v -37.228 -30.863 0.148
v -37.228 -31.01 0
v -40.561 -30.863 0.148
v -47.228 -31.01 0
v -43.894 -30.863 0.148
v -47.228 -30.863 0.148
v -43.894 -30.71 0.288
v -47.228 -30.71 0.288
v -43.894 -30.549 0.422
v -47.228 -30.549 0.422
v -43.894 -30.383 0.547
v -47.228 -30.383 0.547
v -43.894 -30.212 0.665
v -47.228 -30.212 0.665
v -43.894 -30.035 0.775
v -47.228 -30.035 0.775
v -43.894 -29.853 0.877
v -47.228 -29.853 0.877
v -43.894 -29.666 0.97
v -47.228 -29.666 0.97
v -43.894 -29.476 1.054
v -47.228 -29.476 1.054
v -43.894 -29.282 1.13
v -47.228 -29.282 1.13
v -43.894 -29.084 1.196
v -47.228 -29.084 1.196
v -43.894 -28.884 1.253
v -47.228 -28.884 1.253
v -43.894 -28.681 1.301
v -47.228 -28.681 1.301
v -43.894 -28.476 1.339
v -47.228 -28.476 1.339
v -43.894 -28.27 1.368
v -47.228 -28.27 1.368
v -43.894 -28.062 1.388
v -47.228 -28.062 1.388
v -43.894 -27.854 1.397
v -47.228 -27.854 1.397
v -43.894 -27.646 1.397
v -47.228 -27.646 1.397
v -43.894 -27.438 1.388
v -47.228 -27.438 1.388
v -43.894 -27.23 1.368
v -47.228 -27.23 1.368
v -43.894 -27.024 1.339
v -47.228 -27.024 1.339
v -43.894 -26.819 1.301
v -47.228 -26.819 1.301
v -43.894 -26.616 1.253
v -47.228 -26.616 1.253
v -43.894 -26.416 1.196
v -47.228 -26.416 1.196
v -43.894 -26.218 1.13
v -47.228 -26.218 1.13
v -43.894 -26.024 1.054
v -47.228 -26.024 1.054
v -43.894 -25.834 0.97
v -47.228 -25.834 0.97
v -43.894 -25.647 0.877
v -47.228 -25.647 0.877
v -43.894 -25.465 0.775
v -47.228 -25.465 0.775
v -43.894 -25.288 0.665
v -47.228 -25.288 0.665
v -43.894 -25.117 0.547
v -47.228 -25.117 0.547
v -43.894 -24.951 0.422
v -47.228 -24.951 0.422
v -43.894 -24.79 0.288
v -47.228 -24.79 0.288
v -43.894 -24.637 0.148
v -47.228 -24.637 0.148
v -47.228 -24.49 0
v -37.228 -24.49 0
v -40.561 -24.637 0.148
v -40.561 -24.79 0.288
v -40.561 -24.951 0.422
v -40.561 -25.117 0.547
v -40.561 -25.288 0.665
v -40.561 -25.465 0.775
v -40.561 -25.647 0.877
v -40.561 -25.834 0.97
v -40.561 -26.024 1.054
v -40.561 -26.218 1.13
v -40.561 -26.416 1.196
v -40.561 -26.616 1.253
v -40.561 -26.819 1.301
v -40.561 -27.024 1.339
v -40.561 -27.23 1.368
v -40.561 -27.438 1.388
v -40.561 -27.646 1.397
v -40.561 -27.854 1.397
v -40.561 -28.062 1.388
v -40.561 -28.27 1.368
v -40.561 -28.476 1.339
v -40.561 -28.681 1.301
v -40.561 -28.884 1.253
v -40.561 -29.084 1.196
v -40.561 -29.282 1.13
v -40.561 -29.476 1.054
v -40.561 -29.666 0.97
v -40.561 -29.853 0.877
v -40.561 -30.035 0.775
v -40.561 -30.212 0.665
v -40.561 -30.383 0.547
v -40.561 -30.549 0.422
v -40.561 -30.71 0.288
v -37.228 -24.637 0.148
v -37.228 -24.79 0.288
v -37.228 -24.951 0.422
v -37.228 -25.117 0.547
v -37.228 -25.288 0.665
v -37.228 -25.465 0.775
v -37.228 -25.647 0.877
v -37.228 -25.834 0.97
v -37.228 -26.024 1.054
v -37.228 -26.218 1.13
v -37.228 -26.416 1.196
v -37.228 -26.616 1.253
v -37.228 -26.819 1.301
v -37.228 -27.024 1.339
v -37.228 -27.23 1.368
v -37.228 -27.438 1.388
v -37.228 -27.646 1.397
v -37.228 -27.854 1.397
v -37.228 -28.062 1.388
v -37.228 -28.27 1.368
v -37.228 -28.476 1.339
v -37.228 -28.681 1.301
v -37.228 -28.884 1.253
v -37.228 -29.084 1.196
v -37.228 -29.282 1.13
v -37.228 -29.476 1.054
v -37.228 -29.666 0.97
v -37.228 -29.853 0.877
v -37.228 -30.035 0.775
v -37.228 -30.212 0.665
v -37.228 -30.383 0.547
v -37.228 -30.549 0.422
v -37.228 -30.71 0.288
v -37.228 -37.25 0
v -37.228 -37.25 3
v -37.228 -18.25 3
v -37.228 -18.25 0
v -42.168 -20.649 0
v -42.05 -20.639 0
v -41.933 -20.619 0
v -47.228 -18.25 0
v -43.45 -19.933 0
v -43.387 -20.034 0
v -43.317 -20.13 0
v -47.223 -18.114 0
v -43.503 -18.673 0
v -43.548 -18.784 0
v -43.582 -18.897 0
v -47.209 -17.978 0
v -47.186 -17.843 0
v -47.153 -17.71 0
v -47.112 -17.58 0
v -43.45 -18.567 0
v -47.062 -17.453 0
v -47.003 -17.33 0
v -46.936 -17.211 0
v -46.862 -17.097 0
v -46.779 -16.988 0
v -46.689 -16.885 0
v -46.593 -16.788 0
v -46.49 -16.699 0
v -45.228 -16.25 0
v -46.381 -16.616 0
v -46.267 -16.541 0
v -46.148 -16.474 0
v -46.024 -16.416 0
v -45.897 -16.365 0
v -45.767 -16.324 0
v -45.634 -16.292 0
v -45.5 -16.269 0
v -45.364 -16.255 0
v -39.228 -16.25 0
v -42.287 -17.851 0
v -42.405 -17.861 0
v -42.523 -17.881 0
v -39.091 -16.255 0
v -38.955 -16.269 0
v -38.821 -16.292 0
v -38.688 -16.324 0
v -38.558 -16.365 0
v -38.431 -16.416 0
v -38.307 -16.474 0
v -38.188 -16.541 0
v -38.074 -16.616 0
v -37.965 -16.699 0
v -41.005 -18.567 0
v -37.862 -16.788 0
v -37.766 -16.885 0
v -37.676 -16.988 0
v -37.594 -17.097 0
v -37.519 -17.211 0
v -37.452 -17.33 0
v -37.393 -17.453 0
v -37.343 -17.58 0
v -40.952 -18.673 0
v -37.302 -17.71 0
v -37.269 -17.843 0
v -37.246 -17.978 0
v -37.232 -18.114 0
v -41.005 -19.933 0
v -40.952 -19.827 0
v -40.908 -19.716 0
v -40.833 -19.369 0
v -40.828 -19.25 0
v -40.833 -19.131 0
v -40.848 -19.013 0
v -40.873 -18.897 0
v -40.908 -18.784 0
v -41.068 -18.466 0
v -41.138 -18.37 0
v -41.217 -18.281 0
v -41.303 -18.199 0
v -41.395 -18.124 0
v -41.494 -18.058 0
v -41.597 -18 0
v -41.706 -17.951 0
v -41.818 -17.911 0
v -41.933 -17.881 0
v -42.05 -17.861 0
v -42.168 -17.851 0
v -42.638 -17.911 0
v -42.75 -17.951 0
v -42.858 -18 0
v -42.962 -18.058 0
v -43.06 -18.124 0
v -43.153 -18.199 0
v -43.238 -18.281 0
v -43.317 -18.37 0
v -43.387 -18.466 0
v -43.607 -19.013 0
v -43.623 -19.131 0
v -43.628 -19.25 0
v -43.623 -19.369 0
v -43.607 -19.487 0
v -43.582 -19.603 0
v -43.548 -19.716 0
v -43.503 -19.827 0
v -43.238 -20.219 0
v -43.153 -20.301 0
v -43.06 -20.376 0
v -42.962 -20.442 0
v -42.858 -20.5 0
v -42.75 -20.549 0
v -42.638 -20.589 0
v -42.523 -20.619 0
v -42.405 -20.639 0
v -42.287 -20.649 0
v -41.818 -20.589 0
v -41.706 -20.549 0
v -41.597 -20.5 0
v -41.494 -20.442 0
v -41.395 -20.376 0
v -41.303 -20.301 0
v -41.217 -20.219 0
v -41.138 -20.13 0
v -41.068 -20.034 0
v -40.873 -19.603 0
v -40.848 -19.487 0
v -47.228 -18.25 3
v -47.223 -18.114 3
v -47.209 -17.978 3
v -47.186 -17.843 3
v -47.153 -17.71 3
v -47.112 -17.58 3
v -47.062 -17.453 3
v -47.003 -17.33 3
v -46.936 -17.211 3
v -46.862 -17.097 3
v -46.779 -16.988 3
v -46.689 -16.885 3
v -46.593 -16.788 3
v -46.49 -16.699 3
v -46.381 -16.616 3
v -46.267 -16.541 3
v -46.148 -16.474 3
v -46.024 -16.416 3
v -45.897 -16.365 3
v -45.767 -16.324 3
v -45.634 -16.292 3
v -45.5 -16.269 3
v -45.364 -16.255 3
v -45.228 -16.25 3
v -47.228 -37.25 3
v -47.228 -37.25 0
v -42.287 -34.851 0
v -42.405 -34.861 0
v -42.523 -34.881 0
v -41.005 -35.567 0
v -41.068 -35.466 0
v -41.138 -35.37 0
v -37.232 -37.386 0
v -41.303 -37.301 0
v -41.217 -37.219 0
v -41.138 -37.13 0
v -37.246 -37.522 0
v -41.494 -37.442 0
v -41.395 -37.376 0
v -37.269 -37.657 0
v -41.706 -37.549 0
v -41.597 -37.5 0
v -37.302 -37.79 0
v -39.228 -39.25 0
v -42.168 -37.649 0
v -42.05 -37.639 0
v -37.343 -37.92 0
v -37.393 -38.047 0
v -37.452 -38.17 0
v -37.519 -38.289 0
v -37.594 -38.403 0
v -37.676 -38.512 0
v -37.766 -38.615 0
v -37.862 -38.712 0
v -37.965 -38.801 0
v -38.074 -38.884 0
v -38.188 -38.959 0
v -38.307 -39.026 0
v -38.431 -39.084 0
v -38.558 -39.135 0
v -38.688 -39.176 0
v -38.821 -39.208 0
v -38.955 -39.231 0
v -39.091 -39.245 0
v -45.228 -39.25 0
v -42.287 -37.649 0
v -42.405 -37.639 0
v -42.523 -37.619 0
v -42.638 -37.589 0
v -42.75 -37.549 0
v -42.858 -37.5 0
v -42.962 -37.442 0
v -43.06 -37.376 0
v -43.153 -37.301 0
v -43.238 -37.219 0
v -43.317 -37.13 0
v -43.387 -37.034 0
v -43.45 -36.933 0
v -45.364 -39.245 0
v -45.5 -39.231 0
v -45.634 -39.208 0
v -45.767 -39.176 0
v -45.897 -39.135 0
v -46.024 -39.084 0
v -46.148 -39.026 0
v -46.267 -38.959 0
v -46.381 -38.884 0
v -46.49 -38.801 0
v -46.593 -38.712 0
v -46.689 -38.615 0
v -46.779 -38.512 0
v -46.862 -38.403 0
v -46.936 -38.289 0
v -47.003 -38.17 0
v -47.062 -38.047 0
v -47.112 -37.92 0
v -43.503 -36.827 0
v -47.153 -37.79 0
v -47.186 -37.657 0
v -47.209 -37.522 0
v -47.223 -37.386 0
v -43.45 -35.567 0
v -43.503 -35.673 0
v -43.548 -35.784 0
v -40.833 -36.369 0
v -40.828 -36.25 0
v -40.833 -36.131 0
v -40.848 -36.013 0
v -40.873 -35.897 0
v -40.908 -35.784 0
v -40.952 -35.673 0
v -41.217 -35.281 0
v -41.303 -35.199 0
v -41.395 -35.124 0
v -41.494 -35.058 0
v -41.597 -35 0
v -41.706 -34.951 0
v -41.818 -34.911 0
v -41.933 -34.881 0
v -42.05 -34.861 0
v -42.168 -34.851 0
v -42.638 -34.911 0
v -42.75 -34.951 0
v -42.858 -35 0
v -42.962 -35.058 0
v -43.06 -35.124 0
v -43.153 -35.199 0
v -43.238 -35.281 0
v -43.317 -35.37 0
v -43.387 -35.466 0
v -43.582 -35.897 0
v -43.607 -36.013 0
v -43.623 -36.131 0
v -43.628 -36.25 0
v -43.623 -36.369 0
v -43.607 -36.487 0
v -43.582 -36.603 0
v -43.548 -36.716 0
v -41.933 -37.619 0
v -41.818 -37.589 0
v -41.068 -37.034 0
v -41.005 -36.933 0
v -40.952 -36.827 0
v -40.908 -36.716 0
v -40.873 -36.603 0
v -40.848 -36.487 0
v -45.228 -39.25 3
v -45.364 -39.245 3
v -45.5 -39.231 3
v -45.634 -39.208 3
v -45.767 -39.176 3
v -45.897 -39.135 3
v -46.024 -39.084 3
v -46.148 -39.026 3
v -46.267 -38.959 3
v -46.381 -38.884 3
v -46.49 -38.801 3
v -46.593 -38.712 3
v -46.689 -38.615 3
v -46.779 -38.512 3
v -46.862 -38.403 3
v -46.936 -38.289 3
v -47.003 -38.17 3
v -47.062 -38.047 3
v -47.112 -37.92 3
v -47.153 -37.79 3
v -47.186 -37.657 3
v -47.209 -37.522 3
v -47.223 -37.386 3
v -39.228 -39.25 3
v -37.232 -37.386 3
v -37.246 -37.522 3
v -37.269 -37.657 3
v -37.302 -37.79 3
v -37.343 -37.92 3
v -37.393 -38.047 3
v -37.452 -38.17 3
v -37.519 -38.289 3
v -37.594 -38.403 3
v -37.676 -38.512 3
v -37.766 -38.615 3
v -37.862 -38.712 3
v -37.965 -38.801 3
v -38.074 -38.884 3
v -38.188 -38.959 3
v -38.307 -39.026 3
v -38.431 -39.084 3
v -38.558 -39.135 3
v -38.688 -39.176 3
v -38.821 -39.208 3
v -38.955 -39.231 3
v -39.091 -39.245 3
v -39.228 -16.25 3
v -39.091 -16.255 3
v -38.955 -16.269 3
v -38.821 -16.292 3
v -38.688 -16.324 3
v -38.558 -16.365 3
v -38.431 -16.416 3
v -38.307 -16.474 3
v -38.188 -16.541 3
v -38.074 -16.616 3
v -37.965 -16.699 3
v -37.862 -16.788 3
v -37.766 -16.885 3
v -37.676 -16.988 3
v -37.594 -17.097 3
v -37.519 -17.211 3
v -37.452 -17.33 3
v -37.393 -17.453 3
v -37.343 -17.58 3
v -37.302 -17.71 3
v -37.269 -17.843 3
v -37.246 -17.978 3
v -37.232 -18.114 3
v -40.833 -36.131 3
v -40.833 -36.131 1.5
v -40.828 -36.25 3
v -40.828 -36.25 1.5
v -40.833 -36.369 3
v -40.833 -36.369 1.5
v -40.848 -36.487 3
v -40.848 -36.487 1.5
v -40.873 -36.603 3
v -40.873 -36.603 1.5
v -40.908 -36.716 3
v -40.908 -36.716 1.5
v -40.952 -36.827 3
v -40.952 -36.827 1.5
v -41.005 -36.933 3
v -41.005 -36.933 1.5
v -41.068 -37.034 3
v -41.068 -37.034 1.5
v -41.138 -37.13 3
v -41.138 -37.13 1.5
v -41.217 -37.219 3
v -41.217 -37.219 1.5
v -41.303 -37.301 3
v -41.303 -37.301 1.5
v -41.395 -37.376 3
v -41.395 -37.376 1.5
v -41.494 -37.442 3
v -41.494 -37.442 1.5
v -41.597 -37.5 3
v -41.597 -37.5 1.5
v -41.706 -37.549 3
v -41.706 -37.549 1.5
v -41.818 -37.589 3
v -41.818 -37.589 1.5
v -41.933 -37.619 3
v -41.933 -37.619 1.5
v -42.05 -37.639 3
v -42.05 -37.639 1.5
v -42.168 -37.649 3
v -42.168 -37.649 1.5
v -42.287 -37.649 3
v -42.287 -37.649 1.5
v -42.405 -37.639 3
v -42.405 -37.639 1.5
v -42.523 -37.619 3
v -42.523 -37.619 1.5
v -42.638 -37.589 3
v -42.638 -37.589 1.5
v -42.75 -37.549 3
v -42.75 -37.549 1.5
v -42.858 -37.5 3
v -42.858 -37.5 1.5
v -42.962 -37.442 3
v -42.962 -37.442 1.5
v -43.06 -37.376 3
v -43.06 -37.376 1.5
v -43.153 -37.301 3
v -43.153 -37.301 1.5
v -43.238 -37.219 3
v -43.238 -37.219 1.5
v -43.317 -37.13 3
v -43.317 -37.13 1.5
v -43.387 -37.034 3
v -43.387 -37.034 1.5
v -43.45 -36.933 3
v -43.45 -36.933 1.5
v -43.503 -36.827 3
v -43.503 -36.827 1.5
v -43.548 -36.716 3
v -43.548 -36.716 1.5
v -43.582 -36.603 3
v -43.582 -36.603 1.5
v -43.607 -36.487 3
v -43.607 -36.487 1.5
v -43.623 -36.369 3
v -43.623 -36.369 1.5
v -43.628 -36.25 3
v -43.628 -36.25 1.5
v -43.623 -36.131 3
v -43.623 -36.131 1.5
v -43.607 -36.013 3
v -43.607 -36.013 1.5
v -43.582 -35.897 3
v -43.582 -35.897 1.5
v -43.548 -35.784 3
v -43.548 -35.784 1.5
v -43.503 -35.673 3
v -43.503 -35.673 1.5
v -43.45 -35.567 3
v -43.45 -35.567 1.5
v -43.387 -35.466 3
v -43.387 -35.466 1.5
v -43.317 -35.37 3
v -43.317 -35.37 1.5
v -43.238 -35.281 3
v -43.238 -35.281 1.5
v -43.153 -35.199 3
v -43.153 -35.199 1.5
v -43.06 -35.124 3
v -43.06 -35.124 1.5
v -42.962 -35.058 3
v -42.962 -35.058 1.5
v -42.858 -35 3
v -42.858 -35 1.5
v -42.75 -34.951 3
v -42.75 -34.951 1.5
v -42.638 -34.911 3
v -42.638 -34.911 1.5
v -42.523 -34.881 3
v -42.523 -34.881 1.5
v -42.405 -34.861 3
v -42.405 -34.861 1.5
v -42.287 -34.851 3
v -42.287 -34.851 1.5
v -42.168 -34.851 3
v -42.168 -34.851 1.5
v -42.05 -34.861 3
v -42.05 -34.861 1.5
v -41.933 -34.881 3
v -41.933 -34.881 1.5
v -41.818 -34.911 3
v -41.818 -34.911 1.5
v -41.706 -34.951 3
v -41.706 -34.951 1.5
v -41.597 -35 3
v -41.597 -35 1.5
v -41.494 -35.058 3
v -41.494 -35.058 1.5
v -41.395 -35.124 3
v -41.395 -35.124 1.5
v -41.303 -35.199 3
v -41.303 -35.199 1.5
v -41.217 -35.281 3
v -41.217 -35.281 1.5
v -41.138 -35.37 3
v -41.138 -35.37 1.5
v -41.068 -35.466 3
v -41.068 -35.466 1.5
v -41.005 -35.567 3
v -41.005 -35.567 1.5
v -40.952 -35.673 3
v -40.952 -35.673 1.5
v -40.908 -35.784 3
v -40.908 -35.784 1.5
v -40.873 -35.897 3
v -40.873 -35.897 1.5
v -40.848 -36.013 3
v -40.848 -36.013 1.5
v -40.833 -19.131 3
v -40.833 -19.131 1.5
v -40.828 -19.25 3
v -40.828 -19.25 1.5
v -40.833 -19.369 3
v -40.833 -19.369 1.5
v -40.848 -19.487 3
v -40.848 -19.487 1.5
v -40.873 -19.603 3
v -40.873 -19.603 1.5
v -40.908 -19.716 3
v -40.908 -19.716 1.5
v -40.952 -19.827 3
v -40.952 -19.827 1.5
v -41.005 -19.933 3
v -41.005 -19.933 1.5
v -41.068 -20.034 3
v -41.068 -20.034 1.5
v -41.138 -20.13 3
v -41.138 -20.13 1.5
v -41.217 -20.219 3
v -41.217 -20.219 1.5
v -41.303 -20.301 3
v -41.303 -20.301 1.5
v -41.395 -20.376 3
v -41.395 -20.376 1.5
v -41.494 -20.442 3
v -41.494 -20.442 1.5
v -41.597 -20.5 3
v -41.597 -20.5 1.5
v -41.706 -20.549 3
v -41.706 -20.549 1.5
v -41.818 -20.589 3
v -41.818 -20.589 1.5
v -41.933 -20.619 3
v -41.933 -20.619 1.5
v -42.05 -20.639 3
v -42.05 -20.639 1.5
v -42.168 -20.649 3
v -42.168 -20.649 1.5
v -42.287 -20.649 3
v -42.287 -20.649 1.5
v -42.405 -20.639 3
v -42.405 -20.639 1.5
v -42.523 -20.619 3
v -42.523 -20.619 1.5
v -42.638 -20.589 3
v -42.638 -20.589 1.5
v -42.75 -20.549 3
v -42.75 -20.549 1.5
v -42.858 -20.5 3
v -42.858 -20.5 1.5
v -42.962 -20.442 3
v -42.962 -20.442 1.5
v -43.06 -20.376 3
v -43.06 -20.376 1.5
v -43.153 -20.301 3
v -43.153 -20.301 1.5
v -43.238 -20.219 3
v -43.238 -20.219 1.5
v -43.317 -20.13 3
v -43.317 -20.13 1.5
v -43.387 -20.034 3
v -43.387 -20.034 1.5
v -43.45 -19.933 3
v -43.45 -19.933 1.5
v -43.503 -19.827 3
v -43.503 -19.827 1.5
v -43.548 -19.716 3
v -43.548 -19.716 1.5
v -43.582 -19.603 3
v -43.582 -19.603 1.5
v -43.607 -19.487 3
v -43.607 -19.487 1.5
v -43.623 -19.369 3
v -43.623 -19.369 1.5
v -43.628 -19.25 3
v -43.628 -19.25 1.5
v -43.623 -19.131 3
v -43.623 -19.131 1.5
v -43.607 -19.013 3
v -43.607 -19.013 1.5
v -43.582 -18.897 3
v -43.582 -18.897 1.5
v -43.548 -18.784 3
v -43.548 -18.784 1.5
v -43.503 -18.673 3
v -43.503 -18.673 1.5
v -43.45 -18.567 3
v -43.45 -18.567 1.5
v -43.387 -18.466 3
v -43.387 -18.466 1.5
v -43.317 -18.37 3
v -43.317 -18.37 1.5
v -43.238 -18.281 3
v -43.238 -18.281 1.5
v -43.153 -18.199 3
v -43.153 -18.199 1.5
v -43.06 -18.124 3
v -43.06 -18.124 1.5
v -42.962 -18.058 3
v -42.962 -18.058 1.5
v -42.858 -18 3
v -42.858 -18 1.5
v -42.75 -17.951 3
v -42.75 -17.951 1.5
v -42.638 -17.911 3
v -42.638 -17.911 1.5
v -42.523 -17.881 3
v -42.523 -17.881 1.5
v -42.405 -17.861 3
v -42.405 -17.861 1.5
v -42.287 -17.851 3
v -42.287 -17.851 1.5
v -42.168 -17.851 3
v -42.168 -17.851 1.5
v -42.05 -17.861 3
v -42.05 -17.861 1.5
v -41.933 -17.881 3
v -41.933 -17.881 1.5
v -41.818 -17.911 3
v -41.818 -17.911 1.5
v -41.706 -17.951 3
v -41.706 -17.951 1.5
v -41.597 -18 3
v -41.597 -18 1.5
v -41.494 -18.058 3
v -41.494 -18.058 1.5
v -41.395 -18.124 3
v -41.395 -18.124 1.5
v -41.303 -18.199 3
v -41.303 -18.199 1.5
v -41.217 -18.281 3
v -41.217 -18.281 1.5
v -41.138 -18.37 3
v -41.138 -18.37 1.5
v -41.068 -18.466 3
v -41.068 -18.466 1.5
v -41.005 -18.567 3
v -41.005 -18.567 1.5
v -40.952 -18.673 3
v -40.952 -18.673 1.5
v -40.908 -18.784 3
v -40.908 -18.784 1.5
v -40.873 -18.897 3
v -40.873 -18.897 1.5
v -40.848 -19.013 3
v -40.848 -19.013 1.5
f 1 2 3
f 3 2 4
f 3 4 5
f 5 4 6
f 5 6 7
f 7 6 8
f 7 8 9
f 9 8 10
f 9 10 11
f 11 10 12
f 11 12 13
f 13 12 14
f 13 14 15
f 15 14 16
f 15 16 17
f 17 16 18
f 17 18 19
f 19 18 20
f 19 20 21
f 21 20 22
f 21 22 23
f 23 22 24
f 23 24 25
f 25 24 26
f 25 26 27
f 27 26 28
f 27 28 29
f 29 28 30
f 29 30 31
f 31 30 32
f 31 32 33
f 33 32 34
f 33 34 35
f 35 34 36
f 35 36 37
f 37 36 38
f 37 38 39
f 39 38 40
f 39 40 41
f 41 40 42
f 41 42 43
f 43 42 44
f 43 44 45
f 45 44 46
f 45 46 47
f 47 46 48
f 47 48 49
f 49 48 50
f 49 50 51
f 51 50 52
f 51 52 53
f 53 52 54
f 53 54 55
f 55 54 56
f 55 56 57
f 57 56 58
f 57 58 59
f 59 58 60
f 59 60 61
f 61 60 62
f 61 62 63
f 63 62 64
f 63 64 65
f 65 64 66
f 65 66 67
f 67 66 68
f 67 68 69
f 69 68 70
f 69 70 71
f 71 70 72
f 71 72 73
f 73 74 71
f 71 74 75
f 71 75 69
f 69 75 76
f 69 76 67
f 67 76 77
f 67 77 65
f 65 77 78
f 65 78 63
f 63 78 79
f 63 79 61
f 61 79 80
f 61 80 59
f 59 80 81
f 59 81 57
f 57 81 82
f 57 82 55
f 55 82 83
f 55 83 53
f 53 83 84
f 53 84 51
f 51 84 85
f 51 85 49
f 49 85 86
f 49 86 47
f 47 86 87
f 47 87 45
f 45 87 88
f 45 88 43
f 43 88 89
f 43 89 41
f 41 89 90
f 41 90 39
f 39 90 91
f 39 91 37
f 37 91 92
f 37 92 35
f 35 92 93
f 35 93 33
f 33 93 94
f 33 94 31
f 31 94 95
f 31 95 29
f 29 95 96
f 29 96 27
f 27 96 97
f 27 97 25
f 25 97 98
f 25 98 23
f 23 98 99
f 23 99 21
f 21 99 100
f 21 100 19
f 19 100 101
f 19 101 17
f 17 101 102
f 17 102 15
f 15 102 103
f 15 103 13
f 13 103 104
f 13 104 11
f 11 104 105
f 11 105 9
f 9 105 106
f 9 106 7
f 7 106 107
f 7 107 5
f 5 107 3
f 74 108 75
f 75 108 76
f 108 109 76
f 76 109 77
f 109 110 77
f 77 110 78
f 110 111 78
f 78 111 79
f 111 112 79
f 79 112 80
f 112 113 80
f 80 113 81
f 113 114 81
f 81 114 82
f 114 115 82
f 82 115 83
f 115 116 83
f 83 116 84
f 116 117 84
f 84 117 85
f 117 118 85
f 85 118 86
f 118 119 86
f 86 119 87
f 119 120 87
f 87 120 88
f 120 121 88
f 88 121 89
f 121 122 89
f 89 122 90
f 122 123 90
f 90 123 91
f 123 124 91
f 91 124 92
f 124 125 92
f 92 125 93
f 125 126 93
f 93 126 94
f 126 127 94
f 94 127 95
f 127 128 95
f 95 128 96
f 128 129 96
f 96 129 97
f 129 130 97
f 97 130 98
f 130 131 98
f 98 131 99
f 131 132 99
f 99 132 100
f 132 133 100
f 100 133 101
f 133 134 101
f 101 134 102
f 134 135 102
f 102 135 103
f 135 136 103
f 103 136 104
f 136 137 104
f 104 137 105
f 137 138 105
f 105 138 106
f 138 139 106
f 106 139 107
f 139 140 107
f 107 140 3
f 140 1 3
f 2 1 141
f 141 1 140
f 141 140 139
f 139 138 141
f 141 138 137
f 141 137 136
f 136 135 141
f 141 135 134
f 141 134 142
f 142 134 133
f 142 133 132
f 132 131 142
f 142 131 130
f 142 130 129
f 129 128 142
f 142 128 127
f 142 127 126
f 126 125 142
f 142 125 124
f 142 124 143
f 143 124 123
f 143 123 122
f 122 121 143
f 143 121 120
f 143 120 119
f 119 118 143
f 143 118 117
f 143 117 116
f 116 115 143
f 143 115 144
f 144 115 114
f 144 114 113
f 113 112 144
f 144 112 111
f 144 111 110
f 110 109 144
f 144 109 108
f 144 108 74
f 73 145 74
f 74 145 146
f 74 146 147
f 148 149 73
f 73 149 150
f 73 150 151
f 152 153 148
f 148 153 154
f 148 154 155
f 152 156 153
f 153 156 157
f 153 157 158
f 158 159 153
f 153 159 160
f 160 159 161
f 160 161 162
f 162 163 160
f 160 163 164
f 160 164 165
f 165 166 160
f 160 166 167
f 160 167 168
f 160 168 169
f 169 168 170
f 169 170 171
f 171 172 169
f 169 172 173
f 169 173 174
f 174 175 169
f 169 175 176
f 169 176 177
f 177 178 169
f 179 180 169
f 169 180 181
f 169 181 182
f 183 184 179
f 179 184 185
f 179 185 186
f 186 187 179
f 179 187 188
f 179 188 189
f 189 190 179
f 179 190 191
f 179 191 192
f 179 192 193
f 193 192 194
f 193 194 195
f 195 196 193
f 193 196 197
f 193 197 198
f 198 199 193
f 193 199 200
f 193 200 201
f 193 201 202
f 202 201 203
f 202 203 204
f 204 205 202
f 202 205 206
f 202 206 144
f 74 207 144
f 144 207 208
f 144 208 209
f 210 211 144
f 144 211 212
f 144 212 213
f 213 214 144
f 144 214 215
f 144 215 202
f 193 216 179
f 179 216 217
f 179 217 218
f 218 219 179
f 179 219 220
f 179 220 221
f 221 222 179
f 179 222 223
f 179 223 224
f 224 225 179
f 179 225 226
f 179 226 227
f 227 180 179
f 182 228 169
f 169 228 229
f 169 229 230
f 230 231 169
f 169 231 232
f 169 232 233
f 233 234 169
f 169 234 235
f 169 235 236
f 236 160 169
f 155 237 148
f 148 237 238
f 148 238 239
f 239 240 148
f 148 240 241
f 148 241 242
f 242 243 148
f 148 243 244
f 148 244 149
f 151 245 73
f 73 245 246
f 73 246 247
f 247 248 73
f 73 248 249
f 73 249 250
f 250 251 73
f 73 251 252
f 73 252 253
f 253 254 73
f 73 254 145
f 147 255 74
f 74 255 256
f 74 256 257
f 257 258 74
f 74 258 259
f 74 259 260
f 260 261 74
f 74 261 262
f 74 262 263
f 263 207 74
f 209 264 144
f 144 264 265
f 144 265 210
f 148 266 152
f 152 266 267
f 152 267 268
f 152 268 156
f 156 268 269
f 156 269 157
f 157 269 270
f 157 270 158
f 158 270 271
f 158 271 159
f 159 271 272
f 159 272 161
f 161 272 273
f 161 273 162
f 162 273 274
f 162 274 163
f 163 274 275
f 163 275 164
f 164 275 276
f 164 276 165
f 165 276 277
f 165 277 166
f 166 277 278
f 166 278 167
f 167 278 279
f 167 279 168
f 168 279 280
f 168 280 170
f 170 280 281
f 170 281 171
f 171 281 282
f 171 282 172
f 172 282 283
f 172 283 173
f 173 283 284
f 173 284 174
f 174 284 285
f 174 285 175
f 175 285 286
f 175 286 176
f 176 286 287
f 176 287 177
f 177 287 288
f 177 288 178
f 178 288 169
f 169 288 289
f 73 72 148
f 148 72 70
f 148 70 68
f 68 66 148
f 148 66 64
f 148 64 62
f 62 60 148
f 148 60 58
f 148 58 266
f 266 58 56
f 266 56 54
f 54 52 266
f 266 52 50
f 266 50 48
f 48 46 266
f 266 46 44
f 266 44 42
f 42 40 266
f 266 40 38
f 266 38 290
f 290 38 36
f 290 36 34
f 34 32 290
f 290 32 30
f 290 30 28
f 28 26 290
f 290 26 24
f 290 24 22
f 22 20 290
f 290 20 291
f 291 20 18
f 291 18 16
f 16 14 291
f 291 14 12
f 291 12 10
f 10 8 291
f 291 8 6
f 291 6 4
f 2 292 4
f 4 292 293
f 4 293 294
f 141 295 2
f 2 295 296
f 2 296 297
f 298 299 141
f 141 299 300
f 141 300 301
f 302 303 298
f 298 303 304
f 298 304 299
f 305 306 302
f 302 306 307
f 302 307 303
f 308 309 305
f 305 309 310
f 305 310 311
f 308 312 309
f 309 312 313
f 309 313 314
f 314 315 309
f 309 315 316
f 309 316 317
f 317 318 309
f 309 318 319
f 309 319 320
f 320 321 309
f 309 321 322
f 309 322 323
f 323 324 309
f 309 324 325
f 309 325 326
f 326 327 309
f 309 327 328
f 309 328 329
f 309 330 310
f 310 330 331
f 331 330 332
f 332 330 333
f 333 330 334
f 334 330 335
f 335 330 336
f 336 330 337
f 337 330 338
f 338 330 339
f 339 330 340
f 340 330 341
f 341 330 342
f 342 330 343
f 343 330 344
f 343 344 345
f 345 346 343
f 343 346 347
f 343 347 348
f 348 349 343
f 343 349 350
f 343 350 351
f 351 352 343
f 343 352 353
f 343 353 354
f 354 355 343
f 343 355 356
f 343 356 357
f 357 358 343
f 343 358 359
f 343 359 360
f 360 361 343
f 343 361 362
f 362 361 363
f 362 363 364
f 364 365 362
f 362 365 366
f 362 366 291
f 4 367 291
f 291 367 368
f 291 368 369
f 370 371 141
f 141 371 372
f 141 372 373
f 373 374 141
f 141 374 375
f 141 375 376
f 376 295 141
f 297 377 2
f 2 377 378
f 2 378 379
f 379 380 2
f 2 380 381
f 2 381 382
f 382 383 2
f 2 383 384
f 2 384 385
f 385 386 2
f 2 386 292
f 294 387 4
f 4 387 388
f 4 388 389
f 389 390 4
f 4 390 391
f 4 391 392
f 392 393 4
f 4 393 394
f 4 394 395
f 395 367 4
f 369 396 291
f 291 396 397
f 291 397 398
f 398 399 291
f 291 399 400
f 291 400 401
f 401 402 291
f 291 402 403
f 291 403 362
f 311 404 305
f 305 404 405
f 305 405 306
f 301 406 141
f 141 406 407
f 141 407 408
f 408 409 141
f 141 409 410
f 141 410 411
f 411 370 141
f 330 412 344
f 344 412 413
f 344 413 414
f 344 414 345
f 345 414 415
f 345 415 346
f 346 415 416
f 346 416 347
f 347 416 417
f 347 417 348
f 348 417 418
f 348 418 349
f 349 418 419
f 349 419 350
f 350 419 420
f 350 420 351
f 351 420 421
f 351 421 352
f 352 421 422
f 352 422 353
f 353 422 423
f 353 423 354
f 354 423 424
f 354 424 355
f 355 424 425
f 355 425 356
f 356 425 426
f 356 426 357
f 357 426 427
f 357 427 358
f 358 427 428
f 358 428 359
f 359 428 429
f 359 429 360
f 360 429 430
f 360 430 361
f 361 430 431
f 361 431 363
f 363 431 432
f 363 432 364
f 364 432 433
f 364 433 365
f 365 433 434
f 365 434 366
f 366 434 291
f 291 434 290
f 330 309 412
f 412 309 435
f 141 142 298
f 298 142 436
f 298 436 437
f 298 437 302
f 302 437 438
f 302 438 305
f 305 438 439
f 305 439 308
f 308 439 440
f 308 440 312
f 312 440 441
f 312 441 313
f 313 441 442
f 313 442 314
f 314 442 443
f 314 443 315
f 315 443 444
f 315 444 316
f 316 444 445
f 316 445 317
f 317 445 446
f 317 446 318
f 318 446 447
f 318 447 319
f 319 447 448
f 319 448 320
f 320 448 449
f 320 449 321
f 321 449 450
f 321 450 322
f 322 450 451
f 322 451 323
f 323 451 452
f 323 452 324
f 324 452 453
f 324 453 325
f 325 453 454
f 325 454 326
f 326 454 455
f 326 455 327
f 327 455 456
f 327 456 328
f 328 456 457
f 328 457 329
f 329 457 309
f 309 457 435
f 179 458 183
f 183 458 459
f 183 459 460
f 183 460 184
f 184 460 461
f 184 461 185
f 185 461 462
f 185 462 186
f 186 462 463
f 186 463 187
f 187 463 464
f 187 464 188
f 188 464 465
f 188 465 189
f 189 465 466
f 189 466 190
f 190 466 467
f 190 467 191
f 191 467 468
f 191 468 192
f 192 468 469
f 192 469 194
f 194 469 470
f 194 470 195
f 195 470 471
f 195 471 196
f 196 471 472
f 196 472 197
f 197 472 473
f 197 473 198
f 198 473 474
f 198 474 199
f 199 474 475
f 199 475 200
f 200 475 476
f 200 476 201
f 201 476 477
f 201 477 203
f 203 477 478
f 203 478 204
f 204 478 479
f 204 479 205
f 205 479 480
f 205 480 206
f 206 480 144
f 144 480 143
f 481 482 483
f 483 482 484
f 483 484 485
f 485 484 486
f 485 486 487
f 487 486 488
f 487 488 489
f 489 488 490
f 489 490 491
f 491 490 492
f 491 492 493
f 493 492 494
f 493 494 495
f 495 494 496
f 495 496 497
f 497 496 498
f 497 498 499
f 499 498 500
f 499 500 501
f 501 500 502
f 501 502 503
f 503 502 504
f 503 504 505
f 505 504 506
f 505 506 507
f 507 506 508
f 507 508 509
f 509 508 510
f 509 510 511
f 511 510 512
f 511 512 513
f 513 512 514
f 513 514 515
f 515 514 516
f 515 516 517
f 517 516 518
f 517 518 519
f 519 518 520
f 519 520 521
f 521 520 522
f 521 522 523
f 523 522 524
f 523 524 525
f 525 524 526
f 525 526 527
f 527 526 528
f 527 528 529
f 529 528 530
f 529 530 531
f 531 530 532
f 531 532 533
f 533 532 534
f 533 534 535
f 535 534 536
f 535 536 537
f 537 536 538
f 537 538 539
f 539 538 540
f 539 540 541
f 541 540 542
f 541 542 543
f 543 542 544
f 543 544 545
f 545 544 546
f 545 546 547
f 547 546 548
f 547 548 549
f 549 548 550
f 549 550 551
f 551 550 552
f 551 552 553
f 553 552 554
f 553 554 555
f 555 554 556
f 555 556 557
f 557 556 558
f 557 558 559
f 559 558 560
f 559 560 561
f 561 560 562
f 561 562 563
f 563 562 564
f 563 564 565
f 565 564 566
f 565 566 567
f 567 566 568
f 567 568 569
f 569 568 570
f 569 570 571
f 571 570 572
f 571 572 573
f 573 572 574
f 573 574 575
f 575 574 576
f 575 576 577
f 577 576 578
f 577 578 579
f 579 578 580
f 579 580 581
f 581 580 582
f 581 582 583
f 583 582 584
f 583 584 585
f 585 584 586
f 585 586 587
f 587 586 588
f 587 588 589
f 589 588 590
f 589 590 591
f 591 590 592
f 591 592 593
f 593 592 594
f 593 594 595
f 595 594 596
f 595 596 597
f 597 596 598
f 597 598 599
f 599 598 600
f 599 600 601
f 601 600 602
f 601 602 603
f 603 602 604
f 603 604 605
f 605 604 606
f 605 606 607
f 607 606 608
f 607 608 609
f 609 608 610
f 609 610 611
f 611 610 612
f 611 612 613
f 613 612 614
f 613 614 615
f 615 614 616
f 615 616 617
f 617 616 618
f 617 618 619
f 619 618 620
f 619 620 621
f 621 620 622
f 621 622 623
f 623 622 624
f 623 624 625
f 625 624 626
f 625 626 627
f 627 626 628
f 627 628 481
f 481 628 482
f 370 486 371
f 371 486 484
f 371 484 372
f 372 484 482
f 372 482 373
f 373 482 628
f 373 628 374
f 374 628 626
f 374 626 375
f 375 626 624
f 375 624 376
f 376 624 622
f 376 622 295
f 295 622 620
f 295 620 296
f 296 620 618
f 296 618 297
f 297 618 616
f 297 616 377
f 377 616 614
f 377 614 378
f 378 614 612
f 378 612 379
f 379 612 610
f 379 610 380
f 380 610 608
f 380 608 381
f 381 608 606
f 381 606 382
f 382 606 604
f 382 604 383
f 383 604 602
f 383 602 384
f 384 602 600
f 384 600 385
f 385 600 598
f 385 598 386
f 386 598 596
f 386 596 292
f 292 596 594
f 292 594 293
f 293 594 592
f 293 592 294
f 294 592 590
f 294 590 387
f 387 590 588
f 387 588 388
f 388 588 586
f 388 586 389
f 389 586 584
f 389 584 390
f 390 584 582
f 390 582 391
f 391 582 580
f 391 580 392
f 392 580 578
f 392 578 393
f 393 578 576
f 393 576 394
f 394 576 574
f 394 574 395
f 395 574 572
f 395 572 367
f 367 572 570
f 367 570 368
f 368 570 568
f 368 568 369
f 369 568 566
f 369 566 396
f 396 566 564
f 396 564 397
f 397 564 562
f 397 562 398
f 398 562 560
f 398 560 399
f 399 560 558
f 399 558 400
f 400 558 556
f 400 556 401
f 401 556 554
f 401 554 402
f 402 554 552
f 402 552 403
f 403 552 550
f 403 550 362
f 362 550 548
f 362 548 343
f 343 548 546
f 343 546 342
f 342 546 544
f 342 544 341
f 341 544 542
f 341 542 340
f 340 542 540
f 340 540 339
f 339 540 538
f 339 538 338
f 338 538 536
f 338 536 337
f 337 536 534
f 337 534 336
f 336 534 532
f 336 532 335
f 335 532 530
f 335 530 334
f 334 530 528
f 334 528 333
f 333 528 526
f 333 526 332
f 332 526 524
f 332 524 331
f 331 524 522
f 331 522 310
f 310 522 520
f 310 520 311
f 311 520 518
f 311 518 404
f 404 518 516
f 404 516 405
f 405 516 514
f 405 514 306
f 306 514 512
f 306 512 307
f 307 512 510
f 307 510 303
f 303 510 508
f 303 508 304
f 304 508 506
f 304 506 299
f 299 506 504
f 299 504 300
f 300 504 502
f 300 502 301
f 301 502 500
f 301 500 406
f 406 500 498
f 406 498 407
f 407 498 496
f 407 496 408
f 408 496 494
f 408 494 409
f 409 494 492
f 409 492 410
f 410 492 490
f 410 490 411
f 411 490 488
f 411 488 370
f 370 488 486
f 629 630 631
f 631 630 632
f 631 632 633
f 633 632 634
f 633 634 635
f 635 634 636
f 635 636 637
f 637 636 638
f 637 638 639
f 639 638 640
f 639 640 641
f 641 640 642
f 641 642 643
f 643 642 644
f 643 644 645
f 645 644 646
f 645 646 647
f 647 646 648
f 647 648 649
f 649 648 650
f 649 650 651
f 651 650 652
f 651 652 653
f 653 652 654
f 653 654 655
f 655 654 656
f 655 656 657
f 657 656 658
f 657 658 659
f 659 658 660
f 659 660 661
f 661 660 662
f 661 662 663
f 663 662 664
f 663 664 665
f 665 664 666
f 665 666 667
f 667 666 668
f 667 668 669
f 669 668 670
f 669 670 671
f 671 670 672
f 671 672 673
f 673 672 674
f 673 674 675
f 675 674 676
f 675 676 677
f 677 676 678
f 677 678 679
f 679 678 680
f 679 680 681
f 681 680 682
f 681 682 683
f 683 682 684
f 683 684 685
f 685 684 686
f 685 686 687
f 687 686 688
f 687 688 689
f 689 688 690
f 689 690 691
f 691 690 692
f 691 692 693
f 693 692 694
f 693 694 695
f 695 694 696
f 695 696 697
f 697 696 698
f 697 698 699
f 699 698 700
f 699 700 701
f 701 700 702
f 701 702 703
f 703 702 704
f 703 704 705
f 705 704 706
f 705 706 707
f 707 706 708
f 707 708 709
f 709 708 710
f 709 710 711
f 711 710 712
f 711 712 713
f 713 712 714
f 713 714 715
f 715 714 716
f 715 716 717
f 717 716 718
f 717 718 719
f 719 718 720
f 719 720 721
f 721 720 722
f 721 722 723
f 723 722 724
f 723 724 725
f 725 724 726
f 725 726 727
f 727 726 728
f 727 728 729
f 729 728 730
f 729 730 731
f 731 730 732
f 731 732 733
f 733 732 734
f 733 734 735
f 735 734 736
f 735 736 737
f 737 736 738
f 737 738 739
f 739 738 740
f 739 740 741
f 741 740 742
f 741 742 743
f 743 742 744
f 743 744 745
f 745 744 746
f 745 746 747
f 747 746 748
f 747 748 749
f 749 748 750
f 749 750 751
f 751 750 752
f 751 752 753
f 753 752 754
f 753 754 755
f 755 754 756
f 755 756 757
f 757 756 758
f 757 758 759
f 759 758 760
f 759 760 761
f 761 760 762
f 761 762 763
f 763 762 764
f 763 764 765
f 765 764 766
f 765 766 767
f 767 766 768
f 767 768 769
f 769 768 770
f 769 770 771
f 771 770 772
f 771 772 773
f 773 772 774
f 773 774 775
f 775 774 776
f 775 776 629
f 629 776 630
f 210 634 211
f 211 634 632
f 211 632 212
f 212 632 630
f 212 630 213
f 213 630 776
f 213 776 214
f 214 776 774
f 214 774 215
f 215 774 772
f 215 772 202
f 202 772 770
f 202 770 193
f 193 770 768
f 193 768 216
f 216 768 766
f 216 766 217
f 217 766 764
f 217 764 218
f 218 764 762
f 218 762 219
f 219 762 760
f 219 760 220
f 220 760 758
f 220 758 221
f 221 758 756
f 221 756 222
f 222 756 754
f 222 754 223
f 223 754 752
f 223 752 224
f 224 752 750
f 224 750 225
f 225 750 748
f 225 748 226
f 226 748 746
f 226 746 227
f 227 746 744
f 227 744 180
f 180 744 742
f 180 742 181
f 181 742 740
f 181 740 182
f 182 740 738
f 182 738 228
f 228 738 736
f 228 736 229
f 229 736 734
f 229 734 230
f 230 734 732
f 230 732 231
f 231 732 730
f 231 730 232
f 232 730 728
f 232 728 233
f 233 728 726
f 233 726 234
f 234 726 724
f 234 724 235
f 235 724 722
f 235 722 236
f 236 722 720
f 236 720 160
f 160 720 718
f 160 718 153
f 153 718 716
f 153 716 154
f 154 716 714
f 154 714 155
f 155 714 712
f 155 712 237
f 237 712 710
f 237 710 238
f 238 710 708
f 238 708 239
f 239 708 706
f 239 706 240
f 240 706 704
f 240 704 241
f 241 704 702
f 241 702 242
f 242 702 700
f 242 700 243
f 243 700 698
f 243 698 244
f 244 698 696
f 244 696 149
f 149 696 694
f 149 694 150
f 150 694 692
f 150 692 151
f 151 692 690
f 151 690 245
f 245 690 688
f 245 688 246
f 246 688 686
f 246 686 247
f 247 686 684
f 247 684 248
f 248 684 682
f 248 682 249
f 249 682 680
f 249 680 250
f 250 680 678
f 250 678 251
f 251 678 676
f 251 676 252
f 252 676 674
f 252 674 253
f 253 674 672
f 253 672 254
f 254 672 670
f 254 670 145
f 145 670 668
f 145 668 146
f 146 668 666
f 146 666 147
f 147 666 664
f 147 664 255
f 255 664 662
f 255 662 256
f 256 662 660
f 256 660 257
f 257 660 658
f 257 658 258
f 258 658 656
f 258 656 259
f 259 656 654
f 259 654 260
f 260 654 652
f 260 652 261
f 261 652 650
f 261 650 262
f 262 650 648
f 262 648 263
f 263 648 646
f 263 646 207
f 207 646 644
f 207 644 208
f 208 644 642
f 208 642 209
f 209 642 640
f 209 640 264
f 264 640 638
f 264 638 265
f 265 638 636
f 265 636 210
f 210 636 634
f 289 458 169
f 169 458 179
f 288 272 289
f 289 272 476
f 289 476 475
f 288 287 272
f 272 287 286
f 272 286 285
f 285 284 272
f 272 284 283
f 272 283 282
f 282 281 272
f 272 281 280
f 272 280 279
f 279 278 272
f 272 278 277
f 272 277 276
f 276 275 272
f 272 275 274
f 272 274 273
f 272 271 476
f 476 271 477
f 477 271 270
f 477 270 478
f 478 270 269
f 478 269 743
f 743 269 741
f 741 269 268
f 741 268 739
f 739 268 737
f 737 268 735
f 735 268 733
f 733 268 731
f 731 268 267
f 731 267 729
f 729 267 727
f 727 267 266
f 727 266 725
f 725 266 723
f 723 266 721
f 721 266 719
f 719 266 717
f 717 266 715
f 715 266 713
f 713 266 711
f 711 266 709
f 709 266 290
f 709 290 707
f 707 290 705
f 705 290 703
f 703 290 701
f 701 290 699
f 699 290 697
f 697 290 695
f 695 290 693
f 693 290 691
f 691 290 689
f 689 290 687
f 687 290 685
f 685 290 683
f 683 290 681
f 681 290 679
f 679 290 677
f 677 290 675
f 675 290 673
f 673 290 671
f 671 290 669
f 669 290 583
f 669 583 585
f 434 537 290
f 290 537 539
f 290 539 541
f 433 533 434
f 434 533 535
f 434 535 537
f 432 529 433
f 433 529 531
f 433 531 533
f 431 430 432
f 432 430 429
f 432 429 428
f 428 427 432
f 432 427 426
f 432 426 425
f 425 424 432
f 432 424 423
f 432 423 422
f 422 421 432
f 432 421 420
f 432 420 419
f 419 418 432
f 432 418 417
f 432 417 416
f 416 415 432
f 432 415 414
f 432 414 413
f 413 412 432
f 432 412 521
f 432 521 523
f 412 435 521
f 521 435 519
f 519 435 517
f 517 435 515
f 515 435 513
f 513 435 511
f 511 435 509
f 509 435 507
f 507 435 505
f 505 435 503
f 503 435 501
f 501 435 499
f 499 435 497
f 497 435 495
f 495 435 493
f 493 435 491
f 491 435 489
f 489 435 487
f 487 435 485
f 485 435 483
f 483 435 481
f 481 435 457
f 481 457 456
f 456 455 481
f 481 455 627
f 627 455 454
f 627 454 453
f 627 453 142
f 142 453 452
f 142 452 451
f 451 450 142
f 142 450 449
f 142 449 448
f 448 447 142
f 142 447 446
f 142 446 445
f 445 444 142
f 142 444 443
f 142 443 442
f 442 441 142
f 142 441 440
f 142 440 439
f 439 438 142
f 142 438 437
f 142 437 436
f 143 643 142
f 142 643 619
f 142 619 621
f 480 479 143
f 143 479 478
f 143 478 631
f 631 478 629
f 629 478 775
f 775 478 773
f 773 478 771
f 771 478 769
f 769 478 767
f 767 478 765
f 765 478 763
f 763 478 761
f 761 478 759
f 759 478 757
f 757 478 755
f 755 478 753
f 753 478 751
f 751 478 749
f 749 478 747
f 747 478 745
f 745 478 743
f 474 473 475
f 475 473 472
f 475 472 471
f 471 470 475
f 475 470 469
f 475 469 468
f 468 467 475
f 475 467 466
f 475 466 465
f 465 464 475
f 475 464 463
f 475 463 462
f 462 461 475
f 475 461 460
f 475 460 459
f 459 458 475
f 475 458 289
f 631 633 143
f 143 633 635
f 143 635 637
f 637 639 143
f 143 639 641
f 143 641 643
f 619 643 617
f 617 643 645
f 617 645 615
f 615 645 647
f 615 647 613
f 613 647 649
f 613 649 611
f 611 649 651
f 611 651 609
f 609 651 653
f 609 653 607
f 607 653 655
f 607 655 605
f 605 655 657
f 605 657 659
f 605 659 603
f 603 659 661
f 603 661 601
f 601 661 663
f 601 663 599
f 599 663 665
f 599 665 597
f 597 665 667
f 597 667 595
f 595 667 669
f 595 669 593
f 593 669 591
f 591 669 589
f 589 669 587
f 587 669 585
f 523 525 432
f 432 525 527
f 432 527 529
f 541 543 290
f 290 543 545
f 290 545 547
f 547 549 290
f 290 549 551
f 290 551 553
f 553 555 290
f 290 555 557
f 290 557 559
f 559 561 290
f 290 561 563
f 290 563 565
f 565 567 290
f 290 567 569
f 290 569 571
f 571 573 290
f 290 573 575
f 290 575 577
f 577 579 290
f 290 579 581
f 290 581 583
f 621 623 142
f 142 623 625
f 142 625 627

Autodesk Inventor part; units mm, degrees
ref_plane "YZ Plane" through (0, 0, 0) normal (1, 0, 0) x (0, 1, 0)
ref_plane "XZ Plane" through (0, 0, 0) normal (0, 1, 0) x (-1, 0, 0)
ref_plane "XY Plane" through (0, 0, 0) normal (0, 0, 1) x (1, 0, 0)
ref_plane "Arbeitsebene1" through (0, 0, 0) normal (0, 0, 1) x (1, 0, 0)
sketch "Skizze1" plane through (0, 0, 0) normal (0, 0, 1) x (1, 0, 0)
  circle A0 centre (-42.2276, -19.25) radius 1.4 projected
  circle A1 centre (-42.2276, -36.25) radius 1.4 projected
  line L0 (-63.9, -22.9942) -> (-41.36, -22.9942) projected
  line L1 (-41.36, -32.5058) -> (-63.9, -32.5058) projected
  line L2 (-37.2276, -39.25) -> (-47.2276, -39.25)
  line L3 (-47.2276, -39.25) -> (-47.2276, -16.25)
  line L4 (-47.2276, -16.25) -> (-37.2276, -16.25)
  line L5 (-37.2276, -16.25) -> (-37.2276, -39.25)
  line L6 (-37.2276, -39.25) -> (-47.2276, -16.25) construction
  line L7 (-47.2276, -39.25) -> (-37.2276, -16.25) construction
  point P0 (0, 0)
  point P1 (-42.2276, -27.75)
  dimension "d0" = 10
  dimension "d1" = 3
  dimension "d2" = 3
extrude "Extrusion1" add sketch "Skizze1" along normal blind 3
fillet "Rundung1" radius 2 4 edges at (-37.2276, -16.25, 1.5) (-37.2276, -39.25, 1.5) (-47.2276, -39.25, 1.5) (-47.2276, -16.25, 1.5)
sketch "Skizze2" plane through (-37.2276, -37.25, 0) normal (1, 0, 0) x (0, 0, -1)
  line L0 (0, 13.5) -> (4.8526, 13.5) projected
  circle A0 centre (4.8526, 9.5) radius 7 projected
  circle A1 centre (3.1016, 9.5) radius 4.5
  point P0 (0, 37.25)
  dimension "d6" = 9
extrude "Extrusion2" cut sketch "Skizze2" against normal through all contours A1
properties part number "20_Laserlauncher_Fixation"
